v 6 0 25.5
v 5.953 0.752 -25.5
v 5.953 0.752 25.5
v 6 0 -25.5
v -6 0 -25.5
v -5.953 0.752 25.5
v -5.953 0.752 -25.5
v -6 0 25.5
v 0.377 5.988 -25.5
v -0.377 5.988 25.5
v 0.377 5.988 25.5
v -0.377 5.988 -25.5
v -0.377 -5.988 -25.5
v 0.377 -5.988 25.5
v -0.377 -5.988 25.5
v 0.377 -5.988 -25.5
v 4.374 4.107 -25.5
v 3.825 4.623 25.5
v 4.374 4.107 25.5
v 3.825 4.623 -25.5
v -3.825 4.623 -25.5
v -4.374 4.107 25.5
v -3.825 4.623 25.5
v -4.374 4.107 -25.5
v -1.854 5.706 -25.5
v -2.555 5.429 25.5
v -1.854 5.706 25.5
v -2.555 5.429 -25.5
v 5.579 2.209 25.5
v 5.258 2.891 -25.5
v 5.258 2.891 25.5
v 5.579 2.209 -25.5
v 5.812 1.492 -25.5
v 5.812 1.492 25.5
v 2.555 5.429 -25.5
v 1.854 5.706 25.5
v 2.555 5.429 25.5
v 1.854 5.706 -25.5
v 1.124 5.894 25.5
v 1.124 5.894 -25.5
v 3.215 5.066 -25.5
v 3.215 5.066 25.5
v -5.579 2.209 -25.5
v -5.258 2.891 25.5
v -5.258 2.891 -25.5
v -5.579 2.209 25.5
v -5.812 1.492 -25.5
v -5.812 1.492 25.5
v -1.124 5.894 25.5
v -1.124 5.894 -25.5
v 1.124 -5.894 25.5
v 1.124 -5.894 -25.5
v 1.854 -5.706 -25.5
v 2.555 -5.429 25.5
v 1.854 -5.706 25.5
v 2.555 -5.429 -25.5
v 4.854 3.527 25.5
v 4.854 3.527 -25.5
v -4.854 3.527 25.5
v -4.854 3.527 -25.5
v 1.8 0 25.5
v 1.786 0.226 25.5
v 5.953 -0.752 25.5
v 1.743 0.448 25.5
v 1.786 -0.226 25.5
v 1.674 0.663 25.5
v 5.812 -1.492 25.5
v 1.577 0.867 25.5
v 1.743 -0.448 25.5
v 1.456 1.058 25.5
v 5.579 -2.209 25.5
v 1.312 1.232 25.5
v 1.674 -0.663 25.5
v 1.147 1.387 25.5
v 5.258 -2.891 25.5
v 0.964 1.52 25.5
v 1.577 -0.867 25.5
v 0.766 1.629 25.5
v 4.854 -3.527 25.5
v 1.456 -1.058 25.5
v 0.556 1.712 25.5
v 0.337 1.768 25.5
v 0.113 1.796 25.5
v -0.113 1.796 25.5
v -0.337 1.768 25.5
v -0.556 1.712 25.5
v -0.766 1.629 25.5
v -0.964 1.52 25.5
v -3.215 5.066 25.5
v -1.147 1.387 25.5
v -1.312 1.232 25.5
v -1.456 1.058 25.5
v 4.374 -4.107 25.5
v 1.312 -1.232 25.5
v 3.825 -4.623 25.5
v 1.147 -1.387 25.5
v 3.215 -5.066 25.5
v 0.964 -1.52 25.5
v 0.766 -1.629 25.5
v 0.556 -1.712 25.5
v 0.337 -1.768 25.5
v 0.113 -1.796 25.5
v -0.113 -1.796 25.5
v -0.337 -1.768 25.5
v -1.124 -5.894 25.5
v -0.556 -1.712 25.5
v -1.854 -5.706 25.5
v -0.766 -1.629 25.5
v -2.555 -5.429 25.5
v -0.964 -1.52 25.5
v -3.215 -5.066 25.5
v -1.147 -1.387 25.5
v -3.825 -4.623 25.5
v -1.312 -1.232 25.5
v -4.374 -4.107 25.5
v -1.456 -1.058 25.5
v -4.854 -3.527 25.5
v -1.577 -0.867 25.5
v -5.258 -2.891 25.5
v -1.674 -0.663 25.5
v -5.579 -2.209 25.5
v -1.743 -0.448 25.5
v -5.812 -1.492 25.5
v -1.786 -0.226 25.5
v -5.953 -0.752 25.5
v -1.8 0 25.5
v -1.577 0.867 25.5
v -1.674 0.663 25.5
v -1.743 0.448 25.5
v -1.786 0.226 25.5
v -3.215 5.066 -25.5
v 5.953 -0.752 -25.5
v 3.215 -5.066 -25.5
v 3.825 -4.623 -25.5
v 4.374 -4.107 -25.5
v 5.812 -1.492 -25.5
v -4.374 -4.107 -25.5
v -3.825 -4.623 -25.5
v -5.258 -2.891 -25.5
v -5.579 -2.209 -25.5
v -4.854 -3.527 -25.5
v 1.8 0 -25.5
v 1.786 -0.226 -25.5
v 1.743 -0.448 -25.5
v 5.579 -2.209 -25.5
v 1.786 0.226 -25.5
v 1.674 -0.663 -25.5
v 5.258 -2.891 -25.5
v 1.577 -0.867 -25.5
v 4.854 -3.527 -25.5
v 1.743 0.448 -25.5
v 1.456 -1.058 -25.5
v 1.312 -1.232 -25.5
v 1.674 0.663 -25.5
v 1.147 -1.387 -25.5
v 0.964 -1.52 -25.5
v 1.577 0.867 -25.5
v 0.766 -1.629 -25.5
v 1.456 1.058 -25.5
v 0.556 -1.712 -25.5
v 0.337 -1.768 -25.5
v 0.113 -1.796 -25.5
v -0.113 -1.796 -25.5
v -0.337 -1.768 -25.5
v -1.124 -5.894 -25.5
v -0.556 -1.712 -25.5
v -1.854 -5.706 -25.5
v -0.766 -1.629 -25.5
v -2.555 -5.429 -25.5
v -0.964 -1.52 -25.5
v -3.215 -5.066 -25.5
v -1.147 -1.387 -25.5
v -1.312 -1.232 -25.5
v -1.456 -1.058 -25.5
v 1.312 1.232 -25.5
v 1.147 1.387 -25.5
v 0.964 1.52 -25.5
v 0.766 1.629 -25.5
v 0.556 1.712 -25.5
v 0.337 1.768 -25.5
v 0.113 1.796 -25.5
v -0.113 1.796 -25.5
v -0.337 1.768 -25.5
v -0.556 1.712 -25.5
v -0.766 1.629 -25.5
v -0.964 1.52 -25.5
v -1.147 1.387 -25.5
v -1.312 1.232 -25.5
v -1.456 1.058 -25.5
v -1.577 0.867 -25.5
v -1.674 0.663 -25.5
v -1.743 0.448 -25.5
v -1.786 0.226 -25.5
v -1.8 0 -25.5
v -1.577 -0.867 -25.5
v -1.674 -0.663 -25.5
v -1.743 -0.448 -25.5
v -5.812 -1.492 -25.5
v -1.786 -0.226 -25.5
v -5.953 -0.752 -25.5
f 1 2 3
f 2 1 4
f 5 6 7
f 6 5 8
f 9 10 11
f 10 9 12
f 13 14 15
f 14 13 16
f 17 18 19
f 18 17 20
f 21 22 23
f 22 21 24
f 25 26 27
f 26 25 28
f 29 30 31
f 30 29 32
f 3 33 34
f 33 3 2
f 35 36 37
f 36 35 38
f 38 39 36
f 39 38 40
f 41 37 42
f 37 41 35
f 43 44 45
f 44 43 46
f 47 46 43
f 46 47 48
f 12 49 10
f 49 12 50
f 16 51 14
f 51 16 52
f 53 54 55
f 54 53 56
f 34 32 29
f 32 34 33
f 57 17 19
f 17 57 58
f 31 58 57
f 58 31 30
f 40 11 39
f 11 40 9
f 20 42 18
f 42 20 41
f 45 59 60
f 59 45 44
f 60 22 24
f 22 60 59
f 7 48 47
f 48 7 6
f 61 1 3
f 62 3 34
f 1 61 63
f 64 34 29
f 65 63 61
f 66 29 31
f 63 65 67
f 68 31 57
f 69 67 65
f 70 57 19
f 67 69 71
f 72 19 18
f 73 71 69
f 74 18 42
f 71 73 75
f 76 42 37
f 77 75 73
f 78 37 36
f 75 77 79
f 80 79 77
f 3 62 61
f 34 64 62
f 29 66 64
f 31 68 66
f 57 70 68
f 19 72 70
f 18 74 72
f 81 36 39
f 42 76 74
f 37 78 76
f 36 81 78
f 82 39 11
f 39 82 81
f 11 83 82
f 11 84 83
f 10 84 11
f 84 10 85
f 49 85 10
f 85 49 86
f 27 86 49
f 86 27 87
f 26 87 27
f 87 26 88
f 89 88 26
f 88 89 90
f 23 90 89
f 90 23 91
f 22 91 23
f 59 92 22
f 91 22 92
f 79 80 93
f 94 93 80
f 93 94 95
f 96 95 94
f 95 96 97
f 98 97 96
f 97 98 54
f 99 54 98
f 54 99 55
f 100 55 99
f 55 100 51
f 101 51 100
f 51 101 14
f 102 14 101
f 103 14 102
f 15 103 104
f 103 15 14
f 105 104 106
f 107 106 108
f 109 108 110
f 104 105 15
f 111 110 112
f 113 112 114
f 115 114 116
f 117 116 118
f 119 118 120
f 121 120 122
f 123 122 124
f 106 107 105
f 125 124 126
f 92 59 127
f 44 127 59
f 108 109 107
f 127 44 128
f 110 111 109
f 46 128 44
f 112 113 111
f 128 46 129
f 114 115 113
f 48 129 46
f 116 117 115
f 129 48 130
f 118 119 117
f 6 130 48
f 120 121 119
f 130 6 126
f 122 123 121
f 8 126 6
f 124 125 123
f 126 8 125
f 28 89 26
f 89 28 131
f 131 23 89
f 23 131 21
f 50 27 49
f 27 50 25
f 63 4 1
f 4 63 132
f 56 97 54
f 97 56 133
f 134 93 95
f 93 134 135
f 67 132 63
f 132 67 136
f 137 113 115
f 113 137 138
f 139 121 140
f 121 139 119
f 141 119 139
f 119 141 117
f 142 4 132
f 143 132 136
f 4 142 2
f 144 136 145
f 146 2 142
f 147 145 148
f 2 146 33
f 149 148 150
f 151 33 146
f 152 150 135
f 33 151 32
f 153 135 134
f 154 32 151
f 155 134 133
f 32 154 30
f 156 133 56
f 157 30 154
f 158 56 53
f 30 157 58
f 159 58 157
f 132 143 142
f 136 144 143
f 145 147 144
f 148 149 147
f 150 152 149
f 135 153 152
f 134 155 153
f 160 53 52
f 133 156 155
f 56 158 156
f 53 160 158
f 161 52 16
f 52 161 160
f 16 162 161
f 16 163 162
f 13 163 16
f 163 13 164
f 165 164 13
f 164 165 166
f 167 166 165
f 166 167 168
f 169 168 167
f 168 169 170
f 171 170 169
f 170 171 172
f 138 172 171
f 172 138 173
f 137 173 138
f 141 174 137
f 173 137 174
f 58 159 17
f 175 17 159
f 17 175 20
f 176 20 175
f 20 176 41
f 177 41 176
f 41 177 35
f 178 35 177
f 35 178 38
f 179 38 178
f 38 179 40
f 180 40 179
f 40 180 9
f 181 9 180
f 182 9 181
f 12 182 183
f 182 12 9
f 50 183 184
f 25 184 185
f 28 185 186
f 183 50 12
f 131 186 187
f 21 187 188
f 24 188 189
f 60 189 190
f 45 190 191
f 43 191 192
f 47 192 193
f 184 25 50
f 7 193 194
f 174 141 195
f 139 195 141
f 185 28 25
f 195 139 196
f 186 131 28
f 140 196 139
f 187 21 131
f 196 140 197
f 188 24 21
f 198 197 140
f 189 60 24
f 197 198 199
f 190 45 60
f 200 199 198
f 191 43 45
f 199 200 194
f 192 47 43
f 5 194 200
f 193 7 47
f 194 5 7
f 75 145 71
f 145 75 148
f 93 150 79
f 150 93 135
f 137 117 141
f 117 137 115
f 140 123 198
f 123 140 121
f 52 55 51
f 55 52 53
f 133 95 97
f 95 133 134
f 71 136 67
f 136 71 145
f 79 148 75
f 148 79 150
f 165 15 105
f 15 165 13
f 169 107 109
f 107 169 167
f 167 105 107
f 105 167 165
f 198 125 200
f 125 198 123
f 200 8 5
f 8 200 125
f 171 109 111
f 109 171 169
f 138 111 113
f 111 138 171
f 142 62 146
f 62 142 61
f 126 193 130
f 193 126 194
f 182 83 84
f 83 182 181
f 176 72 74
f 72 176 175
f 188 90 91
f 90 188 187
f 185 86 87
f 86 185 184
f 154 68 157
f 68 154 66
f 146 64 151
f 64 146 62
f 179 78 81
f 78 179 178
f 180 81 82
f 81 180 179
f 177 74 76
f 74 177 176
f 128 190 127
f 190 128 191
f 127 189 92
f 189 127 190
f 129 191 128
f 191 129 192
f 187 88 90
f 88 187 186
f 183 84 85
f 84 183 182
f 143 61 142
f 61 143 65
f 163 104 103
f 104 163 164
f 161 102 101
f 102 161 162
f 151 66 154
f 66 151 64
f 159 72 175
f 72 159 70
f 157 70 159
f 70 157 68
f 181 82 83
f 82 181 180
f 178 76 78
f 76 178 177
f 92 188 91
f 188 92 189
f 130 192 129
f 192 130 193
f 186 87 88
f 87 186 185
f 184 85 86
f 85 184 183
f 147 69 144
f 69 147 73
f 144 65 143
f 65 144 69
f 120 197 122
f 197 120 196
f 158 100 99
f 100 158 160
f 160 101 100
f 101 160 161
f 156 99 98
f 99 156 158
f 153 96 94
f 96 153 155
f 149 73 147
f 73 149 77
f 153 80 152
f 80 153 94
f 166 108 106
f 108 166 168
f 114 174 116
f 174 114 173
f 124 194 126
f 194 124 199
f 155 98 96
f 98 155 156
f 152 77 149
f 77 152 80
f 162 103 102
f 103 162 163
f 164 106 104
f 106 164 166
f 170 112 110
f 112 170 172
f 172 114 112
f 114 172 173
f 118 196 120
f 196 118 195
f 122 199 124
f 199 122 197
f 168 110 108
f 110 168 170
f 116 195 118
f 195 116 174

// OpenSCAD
$fn = 50;


difference() {
	union() {
		translate(v = [0, 0, -25.5000000000]) {
			cylinder(h = 51, r = 6.0000000000);
		}
	}
	union() {
		translate(v = [0, 0, -100.0000000000]) {
			cylinder(h = 200, r = 1.8000000000);
		}
	}
}
